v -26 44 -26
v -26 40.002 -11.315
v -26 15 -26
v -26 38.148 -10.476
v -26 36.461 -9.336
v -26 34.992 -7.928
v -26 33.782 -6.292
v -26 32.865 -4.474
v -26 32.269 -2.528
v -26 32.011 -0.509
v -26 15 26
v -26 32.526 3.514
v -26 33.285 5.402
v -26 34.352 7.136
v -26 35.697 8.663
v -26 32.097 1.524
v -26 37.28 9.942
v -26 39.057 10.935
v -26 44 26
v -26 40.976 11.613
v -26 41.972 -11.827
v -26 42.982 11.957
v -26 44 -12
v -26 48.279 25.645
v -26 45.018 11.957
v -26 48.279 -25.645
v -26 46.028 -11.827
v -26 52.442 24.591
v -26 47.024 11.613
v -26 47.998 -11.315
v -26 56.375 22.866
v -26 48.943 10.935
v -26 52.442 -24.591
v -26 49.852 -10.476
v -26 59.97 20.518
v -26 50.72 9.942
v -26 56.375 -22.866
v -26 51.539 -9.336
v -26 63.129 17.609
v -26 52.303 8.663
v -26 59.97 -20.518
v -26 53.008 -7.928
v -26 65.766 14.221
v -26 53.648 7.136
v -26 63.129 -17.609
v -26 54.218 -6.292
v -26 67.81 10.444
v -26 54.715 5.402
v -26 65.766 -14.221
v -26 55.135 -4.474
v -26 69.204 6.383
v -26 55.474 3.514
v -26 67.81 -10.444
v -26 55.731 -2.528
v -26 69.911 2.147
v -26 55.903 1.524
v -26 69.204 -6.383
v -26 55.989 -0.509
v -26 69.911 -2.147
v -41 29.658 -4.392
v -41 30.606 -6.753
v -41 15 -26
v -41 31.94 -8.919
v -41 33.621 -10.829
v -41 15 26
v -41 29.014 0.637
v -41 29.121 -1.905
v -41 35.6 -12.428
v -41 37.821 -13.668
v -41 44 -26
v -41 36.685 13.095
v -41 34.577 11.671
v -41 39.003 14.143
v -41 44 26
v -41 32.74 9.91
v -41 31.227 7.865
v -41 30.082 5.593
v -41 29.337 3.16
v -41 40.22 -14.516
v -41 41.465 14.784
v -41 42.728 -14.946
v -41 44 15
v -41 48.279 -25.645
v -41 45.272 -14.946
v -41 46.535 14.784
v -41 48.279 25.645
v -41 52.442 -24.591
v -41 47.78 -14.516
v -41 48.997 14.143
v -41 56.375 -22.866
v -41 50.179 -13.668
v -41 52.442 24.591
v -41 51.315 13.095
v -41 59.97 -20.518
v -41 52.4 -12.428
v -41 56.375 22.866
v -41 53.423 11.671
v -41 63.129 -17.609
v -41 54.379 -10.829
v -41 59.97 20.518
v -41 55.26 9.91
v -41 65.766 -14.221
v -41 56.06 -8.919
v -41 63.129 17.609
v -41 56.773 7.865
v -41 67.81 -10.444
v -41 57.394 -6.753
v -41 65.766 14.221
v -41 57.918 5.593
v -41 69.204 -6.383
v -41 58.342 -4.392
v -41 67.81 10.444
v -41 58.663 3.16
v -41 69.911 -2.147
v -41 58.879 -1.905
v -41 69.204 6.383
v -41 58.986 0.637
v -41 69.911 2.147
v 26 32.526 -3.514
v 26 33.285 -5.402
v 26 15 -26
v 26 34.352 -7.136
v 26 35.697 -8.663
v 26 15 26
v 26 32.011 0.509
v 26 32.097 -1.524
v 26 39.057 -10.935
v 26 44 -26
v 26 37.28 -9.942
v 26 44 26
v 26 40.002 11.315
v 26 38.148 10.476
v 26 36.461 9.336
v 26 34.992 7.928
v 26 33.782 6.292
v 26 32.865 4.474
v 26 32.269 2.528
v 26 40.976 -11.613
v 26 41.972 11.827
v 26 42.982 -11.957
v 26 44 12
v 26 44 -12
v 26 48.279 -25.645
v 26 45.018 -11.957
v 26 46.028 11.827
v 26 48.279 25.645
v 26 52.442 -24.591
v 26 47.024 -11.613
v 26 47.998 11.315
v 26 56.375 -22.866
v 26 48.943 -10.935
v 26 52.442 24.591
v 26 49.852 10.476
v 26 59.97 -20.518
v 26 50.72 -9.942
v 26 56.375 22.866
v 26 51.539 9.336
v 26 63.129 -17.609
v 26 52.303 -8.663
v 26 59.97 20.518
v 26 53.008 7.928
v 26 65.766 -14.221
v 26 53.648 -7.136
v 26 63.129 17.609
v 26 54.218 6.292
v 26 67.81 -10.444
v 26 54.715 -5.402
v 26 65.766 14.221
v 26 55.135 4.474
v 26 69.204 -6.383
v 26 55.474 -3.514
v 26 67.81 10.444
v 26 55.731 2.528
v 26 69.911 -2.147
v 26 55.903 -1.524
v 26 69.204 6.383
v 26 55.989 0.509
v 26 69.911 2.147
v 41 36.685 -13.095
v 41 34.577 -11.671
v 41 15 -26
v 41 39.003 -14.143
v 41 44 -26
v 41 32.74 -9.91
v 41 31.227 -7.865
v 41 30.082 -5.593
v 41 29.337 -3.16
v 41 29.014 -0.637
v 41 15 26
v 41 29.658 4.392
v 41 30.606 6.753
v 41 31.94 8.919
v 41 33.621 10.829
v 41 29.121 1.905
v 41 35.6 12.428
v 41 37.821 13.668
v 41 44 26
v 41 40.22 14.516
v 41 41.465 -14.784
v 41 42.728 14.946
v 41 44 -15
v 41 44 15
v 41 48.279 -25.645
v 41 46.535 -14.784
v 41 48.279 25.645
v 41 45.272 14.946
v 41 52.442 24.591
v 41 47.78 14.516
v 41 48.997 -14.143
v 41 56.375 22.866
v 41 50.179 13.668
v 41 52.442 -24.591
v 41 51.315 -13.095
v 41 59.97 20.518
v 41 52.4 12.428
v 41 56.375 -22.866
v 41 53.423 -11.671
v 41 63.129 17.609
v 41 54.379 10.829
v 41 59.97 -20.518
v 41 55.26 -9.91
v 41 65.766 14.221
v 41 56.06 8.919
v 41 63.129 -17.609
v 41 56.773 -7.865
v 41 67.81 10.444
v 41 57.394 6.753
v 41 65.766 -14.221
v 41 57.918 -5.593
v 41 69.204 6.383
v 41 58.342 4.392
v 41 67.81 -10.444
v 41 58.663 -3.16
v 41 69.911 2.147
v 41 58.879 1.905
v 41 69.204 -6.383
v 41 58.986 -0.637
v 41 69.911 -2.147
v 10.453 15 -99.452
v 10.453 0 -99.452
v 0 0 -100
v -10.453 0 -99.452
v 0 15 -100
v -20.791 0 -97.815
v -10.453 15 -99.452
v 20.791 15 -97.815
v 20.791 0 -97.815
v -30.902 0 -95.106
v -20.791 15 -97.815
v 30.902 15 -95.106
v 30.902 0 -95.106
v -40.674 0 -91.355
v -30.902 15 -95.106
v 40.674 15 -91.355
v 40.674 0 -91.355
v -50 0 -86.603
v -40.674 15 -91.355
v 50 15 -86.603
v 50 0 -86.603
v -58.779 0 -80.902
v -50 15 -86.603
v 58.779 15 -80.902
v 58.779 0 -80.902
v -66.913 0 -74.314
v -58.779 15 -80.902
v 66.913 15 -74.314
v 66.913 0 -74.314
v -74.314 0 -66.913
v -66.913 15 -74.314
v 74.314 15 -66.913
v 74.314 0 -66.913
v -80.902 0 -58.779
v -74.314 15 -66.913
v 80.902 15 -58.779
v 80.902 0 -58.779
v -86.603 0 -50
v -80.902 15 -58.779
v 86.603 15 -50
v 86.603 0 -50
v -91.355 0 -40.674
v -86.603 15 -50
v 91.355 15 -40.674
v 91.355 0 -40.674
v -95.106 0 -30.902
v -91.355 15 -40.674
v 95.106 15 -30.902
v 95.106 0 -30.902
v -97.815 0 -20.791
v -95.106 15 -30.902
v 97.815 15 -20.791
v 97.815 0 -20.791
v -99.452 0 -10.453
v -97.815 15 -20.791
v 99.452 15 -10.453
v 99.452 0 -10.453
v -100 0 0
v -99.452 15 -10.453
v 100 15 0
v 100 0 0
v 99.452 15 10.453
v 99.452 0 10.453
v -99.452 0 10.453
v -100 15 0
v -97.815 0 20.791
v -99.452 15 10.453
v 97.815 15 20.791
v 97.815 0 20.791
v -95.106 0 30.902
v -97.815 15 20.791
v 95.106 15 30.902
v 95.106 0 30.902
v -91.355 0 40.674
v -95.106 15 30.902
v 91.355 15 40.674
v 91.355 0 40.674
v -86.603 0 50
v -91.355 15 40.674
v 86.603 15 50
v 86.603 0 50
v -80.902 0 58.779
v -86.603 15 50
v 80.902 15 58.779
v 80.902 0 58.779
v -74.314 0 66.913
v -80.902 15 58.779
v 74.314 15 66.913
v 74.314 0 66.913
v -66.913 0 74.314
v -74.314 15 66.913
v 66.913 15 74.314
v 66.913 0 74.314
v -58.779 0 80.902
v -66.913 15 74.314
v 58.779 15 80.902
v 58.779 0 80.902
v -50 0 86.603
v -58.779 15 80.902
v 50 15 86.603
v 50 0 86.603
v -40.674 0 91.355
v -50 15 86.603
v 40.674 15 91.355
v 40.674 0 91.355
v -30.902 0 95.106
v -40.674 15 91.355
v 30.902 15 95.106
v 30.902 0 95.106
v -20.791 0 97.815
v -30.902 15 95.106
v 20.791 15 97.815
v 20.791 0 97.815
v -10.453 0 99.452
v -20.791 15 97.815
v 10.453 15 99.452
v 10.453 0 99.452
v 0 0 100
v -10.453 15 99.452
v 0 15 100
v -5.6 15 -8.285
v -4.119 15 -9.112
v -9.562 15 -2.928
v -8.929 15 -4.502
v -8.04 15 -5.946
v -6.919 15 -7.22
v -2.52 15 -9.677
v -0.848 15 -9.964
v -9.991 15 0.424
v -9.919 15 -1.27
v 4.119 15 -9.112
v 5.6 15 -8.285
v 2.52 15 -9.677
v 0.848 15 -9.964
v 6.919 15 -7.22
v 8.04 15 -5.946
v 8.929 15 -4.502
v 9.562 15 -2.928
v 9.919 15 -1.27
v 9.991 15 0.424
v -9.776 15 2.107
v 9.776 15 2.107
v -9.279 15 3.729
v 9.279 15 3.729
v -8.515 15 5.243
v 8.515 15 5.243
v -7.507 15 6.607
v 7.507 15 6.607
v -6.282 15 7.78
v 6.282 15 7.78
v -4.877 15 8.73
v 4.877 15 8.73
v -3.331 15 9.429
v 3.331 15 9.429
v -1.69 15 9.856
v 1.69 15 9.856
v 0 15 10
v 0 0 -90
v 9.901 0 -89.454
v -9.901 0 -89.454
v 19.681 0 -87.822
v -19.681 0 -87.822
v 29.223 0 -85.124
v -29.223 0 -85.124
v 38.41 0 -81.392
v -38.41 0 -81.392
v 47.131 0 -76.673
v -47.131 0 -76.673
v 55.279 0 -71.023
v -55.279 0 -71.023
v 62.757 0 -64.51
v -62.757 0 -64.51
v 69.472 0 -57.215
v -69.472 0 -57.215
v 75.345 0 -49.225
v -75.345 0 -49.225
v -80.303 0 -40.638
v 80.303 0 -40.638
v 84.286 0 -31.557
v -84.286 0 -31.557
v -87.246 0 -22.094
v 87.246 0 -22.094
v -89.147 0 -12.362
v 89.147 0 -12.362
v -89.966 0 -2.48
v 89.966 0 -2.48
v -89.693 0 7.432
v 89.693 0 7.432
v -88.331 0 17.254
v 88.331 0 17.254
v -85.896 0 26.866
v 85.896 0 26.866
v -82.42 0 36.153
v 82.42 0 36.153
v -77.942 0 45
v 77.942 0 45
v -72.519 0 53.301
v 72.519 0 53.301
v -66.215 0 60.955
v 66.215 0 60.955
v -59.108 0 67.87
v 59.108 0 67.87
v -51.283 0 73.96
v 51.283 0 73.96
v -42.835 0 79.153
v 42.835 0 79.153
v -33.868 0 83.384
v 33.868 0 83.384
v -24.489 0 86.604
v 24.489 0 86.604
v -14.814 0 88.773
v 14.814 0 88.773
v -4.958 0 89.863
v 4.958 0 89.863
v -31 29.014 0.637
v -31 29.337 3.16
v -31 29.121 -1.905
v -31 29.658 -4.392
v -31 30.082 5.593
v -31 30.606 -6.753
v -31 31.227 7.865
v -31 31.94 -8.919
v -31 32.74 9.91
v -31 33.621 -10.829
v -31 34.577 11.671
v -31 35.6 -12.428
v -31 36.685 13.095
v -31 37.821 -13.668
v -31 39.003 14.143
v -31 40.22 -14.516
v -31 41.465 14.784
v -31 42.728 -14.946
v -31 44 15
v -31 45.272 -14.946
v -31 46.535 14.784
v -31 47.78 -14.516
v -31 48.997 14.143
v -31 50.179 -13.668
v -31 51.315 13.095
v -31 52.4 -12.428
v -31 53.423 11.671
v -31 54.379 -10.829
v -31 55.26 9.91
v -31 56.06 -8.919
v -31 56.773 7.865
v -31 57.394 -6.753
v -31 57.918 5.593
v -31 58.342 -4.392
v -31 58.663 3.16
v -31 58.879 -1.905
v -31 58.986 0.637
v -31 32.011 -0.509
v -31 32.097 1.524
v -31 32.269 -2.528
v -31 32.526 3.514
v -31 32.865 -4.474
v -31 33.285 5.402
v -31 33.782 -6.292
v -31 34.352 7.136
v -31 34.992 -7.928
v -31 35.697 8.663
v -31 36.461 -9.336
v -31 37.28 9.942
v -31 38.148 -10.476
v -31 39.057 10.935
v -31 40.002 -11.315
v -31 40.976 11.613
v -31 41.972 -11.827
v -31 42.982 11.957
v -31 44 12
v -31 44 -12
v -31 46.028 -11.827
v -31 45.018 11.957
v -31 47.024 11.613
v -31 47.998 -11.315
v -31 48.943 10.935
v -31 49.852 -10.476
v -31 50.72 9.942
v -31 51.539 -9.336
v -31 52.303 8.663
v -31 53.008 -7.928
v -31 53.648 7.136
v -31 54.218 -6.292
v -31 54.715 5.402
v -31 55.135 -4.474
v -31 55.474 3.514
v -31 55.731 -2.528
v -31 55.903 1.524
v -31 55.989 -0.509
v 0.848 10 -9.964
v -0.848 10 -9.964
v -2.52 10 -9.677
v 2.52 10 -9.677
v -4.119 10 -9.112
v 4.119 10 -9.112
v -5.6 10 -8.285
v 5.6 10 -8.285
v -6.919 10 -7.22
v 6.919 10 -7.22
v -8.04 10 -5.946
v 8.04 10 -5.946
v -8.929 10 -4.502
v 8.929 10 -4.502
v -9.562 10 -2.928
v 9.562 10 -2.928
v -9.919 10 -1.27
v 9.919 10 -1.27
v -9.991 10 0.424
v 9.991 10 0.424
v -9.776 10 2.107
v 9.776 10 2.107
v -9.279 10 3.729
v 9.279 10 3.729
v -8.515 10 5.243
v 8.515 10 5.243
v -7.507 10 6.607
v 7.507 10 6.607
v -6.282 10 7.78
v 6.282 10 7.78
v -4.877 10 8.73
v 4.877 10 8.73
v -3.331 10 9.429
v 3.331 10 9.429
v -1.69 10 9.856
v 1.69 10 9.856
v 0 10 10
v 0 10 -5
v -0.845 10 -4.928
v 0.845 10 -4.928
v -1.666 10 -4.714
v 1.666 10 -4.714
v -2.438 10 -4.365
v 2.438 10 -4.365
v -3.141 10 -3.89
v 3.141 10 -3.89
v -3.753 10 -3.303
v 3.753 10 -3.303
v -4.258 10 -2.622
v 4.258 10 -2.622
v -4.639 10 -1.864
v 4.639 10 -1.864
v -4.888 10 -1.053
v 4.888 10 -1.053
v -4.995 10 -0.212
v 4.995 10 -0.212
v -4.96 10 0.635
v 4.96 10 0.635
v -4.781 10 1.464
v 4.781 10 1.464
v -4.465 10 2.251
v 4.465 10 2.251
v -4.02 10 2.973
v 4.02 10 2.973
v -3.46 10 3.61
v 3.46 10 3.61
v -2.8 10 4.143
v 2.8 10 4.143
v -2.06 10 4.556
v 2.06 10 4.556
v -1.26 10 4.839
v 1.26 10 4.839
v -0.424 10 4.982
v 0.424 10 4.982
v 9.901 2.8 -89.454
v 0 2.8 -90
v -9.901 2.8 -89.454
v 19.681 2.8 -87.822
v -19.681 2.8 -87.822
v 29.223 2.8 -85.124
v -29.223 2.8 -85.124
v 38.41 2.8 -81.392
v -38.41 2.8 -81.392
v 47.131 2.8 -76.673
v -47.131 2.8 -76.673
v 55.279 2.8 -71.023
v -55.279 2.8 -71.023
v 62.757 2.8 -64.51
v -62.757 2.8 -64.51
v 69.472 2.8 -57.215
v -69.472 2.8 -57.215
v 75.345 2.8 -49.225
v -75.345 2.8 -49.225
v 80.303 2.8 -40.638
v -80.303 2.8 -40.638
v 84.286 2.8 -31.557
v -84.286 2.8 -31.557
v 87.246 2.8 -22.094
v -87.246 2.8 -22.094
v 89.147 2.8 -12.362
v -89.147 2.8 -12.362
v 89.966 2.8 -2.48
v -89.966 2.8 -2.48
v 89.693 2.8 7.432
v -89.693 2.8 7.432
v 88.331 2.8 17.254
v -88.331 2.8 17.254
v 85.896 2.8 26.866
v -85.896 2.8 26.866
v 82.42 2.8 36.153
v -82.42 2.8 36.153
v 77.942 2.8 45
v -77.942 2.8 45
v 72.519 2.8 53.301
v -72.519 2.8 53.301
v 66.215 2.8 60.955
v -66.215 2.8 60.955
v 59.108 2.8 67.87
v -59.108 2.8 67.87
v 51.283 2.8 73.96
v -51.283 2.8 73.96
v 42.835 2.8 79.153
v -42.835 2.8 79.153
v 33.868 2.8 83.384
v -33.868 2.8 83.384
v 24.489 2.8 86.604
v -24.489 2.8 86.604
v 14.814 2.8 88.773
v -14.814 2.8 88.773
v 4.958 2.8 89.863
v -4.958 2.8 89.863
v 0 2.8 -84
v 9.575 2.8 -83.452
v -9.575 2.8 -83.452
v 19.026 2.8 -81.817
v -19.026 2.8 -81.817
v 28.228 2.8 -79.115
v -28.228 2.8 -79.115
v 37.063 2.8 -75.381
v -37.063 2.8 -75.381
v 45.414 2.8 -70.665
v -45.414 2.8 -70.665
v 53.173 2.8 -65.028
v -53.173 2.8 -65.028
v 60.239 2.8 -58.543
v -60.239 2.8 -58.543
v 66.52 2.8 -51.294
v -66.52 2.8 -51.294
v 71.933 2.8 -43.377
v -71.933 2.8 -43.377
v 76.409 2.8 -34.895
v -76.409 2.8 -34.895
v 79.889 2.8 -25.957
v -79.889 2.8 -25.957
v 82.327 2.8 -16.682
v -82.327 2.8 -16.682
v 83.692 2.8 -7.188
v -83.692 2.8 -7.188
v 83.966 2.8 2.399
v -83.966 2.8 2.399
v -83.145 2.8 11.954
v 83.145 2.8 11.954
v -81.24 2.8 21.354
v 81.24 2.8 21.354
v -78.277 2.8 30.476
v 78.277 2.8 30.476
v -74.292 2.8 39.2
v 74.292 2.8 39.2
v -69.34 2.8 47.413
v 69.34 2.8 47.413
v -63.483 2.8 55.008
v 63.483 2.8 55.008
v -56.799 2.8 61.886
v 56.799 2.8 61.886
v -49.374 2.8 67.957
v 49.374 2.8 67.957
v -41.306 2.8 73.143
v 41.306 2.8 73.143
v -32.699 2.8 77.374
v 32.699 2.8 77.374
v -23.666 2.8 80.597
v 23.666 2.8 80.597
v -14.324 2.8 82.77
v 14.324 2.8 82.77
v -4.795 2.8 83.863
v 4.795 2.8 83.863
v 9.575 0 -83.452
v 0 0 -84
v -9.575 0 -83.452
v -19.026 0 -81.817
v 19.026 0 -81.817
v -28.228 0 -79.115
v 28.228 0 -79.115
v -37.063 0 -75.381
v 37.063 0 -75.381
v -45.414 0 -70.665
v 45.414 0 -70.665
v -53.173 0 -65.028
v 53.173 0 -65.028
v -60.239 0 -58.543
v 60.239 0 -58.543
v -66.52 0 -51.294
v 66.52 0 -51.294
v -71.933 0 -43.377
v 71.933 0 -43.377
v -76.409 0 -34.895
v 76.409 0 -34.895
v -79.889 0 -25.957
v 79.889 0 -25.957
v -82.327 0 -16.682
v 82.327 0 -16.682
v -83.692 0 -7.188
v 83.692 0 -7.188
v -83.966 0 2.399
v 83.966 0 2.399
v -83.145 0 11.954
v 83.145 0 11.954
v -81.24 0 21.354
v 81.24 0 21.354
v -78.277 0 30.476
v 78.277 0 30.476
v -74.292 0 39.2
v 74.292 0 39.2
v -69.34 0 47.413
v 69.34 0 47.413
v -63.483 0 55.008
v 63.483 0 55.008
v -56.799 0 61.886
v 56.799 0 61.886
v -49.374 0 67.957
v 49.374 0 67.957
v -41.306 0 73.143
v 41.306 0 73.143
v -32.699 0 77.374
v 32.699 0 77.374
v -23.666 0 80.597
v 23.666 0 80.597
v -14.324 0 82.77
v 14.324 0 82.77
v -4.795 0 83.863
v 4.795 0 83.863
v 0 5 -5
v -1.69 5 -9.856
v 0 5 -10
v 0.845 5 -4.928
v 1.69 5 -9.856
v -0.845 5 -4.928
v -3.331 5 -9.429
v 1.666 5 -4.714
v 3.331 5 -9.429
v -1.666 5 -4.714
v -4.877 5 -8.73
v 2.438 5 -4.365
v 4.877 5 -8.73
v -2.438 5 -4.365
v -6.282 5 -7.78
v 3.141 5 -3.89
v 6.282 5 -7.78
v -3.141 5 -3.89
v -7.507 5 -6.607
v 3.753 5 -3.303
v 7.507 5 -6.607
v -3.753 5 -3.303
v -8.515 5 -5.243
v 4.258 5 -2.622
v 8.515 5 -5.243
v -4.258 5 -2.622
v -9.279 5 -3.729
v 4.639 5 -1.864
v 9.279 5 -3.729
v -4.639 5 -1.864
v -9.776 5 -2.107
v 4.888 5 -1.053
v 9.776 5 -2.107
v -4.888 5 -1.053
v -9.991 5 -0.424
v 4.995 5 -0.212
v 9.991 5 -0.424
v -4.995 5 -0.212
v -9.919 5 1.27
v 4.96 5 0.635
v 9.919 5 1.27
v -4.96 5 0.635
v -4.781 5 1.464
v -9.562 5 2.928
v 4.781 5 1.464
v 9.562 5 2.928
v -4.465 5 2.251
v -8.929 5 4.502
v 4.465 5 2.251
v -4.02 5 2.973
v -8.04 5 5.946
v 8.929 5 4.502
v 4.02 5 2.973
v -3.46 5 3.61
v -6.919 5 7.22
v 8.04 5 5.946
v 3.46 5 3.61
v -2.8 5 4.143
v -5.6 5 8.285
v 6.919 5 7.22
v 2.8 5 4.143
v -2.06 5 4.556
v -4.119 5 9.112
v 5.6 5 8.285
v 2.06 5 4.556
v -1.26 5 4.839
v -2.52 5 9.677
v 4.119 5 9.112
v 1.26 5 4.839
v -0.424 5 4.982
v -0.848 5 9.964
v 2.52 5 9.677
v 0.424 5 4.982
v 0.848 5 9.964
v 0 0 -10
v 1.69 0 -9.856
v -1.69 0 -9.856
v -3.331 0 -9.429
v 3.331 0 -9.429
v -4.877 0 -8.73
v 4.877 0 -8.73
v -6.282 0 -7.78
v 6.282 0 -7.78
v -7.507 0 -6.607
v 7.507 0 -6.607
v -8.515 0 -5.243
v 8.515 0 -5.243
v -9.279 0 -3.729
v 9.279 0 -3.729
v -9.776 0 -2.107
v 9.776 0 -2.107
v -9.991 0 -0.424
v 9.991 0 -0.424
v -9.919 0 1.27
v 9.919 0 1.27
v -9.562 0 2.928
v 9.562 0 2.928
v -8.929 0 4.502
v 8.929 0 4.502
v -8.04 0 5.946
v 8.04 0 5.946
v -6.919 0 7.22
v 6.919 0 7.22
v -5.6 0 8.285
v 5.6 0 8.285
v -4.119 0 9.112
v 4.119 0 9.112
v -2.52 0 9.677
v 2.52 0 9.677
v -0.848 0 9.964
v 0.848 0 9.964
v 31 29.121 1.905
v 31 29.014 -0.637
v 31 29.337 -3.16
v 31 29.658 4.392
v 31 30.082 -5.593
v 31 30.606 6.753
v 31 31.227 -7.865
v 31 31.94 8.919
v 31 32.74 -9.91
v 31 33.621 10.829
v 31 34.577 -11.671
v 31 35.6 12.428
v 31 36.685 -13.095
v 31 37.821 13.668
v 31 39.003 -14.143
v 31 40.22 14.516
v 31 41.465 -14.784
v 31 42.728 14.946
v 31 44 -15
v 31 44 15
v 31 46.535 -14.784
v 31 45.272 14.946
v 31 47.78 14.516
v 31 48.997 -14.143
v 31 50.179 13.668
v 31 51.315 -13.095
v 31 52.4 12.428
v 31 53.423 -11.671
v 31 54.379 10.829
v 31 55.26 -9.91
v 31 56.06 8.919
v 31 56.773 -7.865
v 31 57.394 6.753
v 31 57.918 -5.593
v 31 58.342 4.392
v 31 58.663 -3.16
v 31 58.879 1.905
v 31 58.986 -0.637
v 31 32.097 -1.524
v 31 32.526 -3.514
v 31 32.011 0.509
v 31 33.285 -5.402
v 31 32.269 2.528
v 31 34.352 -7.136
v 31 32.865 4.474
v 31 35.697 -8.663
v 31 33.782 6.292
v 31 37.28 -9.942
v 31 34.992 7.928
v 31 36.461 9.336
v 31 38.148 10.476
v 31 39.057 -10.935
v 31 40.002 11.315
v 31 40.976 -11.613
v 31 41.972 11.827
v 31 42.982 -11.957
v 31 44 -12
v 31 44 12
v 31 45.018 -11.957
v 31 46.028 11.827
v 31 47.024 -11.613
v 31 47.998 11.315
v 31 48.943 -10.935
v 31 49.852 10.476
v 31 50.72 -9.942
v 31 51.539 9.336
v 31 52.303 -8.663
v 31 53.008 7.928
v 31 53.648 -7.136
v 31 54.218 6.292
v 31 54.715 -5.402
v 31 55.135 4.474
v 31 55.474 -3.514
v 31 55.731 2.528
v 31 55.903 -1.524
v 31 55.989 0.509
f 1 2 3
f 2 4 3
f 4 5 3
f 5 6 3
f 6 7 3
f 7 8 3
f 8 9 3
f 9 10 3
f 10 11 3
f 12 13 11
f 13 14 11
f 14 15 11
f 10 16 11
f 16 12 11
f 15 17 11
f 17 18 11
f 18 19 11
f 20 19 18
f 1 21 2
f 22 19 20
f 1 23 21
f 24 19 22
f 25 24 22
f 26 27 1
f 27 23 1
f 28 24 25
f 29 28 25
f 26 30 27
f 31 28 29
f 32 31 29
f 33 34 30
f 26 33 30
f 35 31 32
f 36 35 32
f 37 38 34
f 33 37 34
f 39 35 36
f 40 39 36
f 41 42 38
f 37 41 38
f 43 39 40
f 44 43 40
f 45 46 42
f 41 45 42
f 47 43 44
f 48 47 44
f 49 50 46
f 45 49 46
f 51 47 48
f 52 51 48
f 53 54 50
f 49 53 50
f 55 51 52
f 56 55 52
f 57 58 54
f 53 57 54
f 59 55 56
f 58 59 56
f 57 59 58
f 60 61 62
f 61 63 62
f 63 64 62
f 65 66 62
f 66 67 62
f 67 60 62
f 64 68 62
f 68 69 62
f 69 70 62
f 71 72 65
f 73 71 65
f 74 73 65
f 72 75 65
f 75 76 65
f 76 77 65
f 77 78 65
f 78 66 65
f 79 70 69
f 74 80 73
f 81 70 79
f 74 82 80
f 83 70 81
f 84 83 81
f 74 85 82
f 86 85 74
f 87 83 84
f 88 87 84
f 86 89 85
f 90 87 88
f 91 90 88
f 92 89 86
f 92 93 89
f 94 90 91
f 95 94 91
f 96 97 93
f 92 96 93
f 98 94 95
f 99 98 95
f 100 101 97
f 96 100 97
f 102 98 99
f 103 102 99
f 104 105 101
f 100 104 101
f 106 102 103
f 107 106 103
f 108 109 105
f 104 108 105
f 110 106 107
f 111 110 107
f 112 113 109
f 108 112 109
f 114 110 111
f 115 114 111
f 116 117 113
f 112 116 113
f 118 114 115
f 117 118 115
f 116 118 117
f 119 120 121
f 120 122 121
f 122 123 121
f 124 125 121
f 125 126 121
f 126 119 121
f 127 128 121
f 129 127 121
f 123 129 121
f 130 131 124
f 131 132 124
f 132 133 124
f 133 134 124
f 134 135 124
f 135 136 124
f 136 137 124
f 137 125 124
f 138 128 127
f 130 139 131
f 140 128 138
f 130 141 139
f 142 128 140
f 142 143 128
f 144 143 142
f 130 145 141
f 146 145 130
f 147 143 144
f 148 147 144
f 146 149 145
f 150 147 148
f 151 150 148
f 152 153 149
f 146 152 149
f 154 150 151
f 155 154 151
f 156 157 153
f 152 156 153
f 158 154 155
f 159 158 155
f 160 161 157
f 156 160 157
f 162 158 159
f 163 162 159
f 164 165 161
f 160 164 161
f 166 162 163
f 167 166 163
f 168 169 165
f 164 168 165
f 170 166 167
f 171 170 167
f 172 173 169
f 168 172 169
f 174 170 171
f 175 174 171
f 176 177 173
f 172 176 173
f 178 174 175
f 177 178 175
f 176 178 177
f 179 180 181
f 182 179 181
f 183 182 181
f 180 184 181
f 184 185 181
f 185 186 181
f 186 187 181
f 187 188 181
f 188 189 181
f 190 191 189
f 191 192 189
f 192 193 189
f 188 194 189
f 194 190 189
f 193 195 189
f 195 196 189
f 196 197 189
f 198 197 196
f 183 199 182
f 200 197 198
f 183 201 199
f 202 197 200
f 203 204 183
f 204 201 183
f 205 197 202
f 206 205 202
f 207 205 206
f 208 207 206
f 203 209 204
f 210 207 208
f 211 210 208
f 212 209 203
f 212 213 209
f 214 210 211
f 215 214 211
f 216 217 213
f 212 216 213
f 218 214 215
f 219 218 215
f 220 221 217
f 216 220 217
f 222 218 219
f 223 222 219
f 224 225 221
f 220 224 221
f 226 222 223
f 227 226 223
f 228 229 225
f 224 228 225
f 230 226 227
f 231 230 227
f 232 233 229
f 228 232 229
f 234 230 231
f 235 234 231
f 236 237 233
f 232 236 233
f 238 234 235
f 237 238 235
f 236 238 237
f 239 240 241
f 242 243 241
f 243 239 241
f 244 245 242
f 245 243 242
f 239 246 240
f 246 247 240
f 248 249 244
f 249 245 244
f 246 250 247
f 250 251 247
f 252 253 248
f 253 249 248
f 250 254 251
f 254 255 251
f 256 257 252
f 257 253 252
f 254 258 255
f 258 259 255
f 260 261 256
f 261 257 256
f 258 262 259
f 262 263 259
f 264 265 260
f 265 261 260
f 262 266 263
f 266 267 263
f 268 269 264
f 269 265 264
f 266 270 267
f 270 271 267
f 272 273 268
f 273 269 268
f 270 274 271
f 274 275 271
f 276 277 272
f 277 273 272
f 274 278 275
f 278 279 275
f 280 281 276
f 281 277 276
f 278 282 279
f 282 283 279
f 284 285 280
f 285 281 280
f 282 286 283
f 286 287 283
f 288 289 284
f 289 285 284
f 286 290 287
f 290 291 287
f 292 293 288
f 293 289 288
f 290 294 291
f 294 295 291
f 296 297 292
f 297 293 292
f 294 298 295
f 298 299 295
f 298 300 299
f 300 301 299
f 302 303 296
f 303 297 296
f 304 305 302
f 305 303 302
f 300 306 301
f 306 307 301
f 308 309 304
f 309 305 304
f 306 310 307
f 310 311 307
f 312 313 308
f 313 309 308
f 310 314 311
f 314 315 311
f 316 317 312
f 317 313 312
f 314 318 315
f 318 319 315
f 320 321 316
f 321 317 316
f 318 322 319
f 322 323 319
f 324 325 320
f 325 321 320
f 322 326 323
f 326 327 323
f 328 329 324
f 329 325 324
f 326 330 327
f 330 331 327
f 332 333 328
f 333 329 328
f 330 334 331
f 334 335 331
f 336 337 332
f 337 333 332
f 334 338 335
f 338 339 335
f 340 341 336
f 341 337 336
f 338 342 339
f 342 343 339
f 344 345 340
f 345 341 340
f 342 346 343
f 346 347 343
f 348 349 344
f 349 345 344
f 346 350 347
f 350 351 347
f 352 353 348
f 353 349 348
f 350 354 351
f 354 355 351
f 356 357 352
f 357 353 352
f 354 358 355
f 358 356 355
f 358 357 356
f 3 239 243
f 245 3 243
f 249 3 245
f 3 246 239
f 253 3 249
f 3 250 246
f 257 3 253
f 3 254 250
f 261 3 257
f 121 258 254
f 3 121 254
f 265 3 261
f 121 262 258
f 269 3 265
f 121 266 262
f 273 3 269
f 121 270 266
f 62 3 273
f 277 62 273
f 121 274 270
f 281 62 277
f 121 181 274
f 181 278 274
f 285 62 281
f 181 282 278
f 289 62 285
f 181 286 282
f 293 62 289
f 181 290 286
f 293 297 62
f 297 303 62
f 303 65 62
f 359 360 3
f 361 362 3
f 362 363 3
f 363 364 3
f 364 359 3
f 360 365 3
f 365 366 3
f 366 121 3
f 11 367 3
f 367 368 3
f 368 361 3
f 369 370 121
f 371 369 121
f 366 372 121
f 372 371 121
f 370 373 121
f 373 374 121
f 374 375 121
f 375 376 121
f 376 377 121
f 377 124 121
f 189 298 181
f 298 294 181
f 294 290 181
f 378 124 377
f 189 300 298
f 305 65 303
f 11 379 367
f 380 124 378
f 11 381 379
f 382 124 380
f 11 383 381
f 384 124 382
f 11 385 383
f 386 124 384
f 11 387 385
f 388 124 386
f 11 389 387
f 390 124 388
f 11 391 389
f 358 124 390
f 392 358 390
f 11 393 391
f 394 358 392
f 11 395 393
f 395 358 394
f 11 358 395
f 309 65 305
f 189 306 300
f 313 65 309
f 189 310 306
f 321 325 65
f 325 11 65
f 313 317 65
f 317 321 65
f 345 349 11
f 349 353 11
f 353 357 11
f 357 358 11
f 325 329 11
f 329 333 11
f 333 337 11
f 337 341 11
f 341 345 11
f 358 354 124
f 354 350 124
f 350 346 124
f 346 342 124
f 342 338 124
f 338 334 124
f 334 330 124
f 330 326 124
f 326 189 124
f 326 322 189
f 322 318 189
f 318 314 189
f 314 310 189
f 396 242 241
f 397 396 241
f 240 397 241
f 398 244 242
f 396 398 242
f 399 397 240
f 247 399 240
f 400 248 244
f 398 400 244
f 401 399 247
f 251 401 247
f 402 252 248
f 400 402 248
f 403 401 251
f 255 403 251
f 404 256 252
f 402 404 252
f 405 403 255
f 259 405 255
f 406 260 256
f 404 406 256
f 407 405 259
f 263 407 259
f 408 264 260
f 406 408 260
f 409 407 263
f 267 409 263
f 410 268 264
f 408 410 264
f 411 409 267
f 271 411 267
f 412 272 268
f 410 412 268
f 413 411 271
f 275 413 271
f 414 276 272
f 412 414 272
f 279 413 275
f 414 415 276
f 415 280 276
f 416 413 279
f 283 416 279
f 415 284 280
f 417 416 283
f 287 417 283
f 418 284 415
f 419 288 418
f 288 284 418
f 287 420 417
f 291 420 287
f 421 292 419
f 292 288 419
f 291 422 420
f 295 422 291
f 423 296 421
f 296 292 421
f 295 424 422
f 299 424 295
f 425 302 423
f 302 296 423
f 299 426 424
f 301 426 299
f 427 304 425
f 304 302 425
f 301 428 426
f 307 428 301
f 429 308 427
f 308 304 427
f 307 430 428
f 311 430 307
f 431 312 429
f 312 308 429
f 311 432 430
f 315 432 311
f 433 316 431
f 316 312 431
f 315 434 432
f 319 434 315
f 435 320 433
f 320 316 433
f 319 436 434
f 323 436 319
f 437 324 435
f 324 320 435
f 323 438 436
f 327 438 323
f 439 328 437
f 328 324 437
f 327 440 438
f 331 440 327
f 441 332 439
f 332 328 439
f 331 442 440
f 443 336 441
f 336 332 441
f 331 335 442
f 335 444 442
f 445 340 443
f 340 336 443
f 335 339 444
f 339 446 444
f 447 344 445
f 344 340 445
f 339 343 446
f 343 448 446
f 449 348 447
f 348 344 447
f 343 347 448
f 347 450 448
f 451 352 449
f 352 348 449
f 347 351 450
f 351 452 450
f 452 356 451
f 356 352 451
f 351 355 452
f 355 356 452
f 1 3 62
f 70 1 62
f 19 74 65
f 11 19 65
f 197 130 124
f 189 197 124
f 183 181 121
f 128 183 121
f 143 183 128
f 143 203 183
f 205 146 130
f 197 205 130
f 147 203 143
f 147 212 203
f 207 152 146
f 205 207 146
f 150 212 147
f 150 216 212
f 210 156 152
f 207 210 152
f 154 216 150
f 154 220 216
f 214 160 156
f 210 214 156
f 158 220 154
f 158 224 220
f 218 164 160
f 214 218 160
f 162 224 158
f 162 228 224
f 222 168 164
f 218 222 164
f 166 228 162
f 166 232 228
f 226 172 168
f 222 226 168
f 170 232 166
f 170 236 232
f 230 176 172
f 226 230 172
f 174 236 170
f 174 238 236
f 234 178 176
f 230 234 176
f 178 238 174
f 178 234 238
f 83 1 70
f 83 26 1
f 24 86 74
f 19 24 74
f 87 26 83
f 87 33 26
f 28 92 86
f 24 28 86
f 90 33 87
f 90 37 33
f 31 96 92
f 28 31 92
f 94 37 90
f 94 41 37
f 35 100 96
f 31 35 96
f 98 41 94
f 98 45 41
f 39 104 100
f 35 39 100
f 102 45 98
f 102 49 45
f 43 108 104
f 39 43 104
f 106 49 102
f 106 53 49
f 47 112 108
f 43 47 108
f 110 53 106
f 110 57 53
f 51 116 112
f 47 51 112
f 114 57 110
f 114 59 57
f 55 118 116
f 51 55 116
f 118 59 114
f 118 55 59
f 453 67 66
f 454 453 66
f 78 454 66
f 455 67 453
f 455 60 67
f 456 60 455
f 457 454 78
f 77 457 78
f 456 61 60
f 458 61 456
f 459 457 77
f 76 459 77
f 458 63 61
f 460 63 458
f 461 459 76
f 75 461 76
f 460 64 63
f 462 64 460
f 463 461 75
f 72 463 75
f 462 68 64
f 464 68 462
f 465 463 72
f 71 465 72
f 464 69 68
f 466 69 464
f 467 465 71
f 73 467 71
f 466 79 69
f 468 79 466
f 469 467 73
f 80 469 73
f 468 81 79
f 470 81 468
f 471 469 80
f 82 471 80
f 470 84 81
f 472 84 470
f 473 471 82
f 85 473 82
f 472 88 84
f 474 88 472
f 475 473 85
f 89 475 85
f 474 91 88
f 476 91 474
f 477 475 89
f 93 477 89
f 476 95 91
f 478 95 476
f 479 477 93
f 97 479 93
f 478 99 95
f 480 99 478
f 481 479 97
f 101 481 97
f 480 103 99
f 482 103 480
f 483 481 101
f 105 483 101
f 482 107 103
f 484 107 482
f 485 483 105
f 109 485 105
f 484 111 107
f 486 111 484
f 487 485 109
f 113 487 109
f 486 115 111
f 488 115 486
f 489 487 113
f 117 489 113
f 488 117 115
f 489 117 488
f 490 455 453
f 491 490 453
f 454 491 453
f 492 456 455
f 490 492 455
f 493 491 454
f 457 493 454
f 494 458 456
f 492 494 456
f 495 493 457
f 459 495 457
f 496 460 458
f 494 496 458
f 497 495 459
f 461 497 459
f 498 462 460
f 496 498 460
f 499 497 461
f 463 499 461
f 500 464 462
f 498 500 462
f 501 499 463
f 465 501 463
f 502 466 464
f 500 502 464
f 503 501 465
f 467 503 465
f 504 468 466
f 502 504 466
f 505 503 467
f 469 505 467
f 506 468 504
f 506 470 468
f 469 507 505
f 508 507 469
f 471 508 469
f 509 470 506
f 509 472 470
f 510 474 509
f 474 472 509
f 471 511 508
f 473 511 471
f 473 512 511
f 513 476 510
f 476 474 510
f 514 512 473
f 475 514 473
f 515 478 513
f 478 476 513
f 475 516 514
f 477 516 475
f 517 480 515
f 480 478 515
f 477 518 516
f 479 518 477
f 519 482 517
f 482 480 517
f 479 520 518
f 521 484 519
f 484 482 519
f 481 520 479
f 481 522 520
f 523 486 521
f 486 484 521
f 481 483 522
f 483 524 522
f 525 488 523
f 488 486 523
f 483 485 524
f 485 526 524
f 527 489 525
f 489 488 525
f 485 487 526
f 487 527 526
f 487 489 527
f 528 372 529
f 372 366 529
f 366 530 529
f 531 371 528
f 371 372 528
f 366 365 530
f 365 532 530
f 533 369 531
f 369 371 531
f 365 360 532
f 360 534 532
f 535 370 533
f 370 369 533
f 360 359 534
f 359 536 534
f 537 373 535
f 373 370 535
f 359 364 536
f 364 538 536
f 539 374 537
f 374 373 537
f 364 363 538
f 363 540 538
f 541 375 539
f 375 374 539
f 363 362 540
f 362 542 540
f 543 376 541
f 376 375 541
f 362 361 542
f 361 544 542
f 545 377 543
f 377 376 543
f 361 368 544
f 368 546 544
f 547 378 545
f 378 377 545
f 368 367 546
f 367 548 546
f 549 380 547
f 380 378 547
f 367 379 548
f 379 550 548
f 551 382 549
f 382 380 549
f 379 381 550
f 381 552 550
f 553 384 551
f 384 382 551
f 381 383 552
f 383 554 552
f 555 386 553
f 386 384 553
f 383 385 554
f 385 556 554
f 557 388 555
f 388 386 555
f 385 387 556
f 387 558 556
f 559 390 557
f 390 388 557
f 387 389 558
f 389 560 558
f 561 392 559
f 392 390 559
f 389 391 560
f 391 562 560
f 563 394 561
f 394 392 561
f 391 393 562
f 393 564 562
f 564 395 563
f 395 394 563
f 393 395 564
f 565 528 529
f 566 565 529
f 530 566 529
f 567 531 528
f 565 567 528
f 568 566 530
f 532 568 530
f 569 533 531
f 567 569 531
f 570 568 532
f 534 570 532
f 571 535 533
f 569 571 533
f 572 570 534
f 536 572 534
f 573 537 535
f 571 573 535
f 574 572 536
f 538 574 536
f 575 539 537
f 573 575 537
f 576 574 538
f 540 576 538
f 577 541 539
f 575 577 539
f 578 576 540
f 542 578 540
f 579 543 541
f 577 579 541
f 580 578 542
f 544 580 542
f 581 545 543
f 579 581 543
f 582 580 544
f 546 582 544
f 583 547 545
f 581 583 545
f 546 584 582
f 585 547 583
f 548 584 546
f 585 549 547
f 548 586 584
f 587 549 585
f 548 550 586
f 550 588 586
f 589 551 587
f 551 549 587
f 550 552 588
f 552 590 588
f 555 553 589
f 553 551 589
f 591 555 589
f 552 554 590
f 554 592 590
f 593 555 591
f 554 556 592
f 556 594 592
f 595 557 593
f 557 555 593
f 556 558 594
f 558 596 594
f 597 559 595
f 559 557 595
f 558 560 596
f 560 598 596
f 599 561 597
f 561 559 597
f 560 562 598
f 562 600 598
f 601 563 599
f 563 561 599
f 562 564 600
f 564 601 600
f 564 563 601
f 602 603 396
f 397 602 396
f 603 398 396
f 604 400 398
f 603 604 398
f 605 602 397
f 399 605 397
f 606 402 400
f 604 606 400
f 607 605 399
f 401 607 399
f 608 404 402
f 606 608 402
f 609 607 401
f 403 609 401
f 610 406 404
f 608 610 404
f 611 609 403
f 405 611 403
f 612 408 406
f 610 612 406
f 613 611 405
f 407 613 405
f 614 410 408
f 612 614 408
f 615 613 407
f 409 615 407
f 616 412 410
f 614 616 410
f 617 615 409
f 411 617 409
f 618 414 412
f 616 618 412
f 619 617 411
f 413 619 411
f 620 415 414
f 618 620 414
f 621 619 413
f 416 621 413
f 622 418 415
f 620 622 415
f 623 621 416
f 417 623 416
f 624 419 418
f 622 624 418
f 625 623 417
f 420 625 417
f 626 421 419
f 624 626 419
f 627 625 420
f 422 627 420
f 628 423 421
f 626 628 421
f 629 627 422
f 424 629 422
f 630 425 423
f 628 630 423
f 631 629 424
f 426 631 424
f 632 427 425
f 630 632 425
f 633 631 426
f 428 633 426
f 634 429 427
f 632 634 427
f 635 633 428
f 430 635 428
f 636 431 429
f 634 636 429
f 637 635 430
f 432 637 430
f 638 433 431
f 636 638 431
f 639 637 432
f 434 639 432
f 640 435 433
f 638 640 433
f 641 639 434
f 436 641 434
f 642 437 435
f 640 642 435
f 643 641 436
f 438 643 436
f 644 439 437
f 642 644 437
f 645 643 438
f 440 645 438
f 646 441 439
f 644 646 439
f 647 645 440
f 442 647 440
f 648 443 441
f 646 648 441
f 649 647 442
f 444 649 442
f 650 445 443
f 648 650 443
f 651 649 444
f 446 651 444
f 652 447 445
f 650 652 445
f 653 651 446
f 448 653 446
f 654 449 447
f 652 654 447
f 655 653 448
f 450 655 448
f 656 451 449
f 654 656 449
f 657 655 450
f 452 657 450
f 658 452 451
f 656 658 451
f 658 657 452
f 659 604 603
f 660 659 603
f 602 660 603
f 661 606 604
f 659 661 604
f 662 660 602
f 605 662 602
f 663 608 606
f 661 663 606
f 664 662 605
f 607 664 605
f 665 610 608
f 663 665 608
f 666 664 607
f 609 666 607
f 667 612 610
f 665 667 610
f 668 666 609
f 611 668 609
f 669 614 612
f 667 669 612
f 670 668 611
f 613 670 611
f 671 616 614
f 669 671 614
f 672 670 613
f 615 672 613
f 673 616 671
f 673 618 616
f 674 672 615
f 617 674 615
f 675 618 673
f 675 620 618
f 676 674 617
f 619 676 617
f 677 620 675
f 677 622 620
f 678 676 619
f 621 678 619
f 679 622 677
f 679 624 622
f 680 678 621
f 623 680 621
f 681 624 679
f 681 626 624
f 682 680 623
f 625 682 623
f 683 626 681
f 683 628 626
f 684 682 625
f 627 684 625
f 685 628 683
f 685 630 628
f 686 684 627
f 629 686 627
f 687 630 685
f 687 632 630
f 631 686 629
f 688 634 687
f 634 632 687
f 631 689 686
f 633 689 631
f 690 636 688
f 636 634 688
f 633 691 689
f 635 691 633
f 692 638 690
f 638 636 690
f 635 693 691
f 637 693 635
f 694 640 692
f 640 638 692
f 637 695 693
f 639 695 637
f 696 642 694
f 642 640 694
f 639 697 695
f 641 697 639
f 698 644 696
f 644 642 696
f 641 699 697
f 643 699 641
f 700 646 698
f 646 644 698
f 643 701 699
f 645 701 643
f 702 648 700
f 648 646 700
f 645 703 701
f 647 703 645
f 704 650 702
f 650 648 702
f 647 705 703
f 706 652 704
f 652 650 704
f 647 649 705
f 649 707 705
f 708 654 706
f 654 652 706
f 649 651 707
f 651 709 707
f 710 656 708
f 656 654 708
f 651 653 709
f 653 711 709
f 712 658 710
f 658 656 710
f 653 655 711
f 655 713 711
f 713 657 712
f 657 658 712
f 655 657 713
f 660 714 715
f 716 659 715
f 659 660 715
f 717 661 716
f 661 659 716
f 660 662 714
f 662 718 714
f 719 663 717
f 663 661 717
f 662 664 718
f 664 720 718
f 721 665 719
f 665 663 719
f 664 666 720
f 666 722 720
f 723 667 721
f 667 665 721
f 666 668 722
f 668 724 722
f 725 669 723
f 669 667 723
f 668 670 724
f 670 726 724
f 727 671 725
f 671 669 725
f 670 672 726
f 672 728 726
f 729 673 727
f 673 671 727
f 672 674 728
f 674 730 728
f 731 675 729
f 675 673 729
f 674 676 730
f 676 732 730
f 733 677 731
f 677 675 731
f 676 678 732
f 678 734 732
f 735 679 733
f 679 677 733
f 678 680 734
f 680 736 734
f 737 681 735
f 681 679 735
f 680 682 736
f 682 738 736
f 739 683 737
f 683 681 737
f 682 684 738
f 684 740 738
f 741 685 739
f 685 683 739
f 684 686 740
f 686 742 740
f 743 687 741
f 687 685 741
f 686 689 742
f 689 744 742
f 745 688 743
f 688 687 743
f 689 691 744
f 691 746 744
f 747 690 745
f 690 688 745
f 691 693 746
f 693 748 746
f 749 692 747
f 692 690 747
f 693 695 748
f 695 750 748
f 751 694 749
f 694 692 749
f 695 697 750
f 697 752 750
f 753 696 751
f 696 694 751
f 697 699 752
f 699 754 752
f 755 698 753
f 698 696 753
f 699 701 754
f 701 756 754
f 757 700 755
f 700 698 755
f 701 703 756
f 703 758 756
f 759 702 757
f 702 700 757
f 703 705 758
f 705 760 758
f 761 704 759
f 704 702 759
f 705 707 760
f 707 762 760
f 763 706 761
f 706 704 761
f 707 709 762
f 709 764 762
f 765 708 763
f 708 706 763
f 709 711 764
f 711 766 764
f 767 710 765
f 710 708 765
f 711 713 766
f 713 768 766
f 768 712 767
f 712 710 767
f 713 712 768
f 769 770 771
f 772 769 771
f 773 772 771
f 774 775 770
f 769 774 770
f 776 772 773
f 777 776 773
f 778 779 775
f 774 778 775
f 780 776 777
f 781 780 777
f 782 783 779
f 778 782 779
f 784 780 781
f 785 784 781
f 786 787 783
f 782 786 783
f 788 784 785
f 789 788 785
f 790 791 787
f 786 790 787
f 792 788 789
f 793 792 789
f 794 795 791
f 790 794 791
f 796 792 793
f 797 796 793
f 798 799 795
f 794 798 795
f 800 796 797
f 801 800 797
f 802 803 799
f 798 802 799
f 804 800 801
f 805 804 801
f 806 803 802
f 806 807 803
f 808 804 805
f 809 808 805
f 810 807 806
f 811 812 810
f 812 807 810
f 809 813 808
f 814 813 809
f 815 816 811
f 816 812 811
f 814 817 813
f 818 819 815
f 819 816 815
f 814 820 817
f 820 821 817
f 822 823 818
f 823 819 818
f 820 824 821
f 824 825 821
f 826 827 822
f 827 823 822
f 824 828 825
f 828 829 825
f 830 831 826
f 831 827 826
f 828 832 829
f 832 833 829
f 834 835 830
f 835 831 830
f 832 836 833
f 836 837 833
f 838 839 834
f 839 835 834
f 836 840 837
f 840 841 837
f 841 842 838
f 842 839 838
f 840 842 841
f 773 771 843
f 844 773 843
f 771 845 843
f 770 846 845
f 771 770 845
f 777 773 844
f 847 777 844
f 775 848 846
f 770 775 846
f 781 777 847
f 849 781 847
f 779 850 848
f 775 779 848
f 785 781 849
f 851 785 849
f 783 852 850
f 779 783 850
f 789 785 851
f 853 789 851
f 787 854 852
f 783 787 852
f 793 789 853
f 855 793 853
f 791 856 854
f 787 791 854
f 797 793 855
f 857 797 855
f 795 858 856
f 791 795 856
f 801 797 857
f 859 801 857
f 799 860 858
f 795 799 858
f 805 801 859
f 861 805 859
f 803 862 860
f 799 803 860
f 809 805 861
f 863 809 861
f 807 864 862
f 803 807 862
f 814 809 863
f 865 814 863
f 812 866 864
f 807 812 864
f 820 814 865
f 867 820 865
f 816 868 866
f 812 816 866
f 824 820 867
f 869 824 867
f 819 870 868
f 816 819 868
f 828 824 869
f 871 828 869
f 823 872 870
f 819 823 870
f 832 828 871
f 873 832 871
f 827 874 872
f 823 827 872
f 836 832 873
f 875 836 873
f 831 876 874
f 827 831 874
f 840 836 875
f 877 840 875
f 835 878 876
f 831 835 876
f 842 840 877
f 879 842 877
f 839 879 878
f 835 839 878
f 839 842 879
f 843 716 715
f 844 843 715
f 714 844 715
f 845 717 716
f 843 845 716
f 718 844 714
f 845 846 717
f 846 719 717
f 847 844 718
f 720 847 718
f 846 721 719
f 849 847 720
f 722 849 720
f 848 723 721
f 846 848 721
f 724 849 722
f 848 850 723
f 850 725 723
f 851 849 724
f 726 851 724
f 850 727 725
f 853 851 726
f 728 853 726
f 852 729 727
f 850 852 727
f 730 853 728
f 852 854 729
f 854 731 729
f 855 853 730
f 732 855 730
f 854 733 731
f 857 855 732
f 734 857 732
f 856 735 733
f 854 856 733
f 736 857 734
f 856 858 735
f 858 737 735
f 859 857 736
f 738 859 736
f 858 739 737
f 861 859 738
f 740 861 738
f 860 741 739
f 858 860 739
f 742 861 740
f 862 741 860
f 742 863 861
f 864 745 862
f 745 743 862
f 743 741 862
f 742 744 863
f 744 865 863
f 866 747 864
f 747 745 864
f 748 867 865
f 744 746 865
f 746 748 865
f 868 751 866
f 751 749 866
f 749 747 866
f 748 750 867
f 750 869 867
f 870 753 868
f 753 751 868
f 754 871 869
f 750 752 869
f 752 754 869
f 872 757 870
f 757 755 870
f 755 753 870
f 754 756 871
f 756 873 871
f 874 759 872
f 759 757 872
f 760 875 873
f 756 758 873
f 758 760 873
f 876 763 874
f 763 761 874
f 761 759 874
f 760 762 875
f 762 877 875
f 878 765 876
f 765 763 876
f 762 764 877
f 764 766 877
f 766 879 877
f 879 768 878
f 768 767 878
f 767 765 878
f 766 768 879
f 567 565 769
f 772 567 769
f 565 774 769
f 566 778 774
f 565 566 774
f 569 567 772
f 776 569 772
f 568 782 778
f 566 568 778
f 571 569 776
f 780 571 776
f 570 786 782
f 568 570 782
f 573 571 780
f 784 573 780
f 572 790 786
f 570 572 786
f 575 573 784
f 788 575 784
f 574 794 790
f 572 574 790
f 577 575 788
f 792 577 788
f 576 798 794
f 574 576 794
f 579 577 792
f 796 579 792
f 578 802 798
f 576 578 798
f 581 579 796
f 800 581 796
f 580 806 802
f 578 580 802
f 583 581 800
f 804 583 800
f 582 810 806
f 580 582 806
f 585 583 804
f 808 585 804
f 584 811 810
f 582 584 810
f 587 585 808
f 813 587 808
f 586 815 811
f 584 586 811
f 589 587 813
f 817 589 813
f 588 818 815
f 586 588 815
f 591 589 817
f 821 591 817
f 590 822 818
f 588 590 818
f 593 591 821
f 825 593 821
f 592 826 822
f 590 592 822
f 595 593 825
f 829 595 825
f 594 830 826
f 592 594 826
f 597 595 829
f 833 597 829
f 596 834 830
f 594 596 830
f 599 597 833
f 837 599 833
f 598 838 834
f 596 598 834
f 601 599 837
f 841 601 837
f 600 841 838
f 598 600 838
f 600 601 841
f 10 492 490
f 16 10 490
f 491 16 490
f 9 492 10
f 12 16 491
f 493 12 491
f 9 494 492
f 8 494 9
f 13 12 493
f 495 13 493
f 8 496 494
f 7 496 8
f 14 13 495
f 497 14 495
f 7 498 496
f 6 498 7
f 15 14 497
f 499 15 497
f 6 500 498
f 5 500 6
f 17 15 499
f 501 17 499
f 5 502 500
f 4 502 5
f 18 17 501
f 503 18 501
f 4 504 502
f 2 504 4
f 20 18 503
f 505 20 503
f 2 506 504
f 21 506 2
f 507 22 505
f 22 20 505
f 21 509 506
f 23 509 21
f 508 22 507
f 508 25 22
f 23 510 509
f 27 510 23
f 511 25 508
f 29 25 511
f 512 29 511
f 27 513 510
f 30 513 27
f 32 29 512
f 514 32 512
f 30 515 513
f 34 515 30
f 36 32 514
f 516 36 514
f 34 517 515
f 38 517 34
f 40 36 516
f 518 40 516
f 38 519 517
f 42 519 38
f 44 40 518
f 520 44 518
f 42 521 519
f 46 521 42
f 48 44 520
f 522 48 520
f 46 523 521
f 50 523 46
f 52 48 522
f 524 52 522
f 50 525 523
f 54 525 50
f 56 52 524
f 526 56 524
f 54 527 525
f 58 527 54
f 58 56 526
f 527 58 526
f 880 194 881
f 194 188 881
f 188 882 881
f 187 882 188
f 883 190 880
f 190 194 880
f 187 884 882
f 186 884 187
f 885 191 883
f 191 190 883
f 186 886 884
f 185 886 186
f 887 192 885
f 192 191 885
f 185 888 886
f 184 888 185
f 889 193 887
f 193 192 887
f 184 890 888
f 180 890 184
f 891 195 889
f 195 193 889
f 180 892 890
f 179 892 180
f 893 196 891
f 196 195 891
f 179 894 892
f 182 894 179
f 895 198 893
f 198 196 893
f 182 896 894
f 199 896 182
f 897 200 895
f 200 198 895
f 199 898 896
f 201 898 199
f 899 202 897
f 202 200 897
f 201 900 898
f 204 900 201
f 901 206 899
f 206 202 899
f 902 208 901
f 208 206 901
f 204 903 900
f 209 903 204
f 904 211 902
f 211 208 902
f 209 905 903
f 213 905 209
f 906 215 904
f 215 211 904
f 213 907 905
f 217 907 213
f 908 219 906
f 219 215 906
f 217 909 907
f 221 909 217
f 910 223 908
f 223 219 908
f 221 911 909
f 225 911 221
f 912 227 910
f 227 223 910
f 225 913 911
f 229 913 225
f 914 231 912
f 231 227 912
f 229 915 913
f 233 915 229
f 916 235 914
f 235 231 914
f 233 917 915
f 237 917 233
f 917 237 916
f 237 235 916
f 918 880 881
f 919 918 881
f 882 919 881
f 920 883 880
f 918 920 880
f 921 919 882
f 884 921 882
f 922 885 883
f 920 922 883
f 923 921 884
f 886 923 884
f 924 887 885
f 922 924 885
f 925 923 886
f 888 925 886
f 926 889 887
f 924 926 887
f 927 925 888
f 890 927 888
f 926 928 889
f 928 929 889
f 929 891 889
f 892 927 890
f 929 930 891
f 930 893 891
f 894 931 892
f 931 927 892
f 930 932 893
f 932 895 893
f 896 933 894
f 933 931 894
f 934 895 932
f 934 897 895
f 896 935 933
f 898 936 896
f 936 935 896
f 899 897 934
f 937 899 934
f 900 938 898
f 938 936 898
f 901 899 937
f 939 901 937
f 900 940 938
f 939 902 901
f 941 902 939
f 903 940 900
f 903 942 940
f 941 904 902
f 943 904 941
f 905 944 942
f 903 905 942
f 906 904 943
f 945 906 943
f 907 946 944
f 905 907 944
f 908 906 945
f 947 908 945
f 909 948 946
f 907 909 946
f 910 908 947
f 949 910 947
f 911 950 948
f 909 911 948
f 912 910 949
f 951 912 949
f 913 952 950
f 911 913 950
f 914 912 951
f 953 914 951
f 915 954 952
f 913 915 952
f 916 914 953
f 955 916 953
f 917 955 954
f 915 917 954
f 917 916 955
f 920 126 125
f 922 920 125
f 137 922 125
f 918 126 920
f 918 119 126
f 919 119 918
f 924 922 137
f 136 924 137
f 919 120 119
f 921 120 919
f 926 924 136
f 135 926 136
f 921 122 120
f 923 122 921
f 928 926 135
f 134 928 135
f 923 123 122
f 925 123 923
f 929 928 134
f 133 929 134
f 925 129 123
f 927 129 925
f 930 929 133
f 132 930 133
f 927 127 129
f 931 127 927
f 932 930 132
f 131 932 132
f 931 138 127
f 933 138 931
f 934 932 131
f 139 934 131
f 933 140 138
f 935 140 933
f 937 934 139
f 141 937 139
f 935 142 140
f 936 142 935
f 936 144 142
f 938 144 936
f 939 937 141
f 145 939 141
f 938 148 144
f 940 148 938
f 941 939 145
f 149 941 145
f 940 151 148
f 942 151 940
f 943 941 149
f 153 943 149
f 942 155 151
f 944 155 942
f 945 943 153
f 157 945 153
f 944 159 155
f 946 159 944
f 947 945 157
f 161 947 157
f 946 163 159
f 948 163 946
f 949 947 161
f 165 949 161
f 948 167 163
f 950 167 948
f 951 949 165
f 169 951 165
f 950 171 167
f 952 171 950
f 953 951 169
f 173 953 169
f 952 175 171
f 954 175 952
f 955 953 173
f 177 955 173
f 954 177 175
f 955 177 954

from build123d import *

# Parameters (mm, degrees)
SKIZZE1_R                        = 100
AUFSATZ_LINEAR_AUSTRAGEN1_DEPTH  = 15
AUFSATZ_LINEAR_AUSTRAGEN2_DEPTH  = 55
SCHNITT_LINEAR_AUSTRAGEN5_REACH  = 188.497
SKIZZE7_R                        = 15
SCHNITT_LINEAR_AUSTRAGEN6_DEPTH  = 10
SKIZZE10_R                       = 10
SCHNITT_LINEAR_AUSTRAGEN9_DEPTH  = 5
SCHNITT_LINEAR_START             = -5
SKIZZE11_R                       = 10
SCHNITT_LINEAR_AUSTRAGEN10_DEPTH = 5
SKIZZE12_R                       = 90
SKIZZE12_R_2                     = 84
SCHNITT_LINEAR_AUSTRAGEN11_DEPTH = 2.8
SKIZZE13_R                       = 5
SCHNITT_LINEAR_AUSTRAGEN12_DEPTH = 5
SKIZZE14_R                       = 12
SCHNITT_LINEAR_AUSTRAGEN13_DEPTH = 10


with BuildPart() as part:
    # Skizze1 → Aufsatz-Linear austragen1 (new body)
    with BuildSketch(Plane(origin=(0, 0, 0), x_dir=(1, 0, 0), z_dir=(0, 1, 0))):
        with Locations(Location((0, 0, 0), (0, 0, 270))):
            Circle(SKIZZE1_R)
    extrude(amount=AUFSATZ_LINEAR_AUSTRAGEN1_DEPTH)

    # Skizze2 → Aufsatz-Linear austragen2 (add)
    with BuildSketch(Plane(origin=(0, 15, 0), x_dir=(1, 0, 0), z_dir=(0, 1, 0))):
        Polygon((-26, -25), (-26, 25), (-26, 26), (-41, 26), (-41, -26), (-26, -26), align=None)
        Polygon((26, 26), (26, 25), (26, -25), (26, -26), (41, -26), (41, 26), align=None)
    extrude(amount=AUFSATZ_LINEAR_AUSTRAGEN2_DEPTH)

    # Schnitt-Linear austragen5: up to this face of the body (flat: up to its plane)
    schnitt_linear_austragen5_end = Plane(part.part.faces().sort_by_distance((41, 42.5, 0))[0])
    # Skizze3 → Schnitt-Linear austragen5 (cut, up to the picked face)
    with BuildSketch(Plane.ZY.offset(41), mode=Mode.PRIVATE) as schnitt_linear_austragen5_sk1:
        with BuildLine():
            Line((-26, 70), (-26, 44))
            ThreePointArc((-26, 44), (-18.384776279, 62.384776343), (9.1e-08, 70))
            Line((9.1e-08, 70), (-26, 70))
        make_face()
    schnitt_linear_austragen5_tool1 = split(extrude(schnitt_linear_austragen5_sk1.sketch, amount=-SCHNITT_LINEAR_AUSTRAGEN5_REACH, mode=Mode.PRIVATE), bisect_by=schnitt_linear_austragen5_end, keep=Keep.BOTH, mode=Mode.PRIVATE)
    # Skizze3 → Schnitt-Linear austragen5 (cut, up to the picked face)
    with BuildSketch(Plane.ZY.offset(41), mode=Mode.PRIVATE) as schnitt_linear_austragen5_sk2:
        with BuildLine():
            ThreePointArc((9.1e-08, 70), (18.384776343, 62.384776279), (26, 44))
            Line((26, 44), (26, 70))
            Line((26, 70), (9.1e-08, 70))
        make_face()
    schnitt_linear_austragen5_tool2 = split(extrude(schnitt_linear_austragen5_sk2.sketch, amount=-SCHNITT_LINEAR_AUSTRAGEN5_REACH, mode=Mode.PRIVATE), bisect_by=schnitt_linear_austragen5_end, keep=Keep.BOTH, mode=Mode.PRIVATE)
    add(schnitt_linear_austragen5_tool1.solids().sort_by(Axis((-41, 64.192434, -20.192434), (1, 0, 0)))[0], mode=Mode.SUBTRACT)
    add(schnitt_linear_austragen5_tool2.solids().sort_by(Axis((-41, 64.192434, 20.192434), (1, 0, 0)))[0], mode=Mode.SUBTRACT)

    # Skizze7 → Schnitt-Linear austragen6 (cut)
    with BuildSketch(Plane.ZY.offset(41)):
        with Locations((0, 44)):
            Circle(SKIZZE7_R)
    schnitt_linear_austragen6 = extrude(amount=-SCHNITT_LINEAR_AUSTRAGEN6_DEPTH, mode=Mode.SUBTRACT)

    # Skizze10 → Schnitt-Linear austragen9 (cut)
    with BuildSketch(Plane(origin=(0, 15, 0), x_dir=(1, 0, 0), z_dir=(0, 1, 0))):
        with Locations(Location((0, 0, 0), (0, 0, 270))):
            Circle(SKIZZE10_R)
    extrude(amount=-SCHNITT_LINEAR_AUSTRAGEN9_DEPTH, mode=Mode.SUBTRACT)

    # Skizze11 → Schnitt-Linear austragen10 (cut)
    with BuildSketch(Plane.XZ.offset(SCHNITT_LINEAR_START)):
        with Locations(Location((0, 0, 0), (0, 0, 90))):
            Circle(SKIZZE11_R)
    extrude(amount=SCHNITT_LINEAR_AUSTRAGEN10_DEPTH, mode=Mode.SUBTRACT)

    # Skizze12 → Schnitt-Linear austragen11 (cut)
    with BuildSketch(Plane.XZ):
        with Locations(Location((0, 0, 0), (0, 0, 270))):
            Circle(SKIZZE12_R)
        with Locations(Location((0, 0, 0), (0, 0, 270))):
            Circle(SKIZZE12_R_2, mode=Mode.SUBTRACT)
    extrude(amount=-SCHNITT_LINEAR_AUSTRAGEN11_DEPTH, mode=Mode.SUBTRACT)

    # Skizze13 → Schnitt-Linear austragen12 (cut)
    with BuildSketch(Plane.XZ.offset(-5)):
        with Locations(Location((0, 0, 0), (0, 0, 270))):
            Circle(SKIZZE13_R)
    extrude(amount=-SCHNITT_LINEAR_AUSTRAGEN12_DEPTH, mode=Mode.SUBTRACT)

    # Skizze14 → Schnitt-Linear austragen13 (cut)
    with BuildSketch(Plane(origin=(-26, 0, 0), x_dir=(0, 0, -1), z_dir=(1, 0, 0))):
        with Locations((0, 44)):
            Circle(SKIZZE14_R)
    schnitt_linear_austragen13 = extrude(amount=-SCHNITT_LINEAR_AUSTRAGEN13_DEPTH, mode=Mode.SUBTRACT)

    # Spiegeln1: Schnitt-Linear austragen6, Schnitt-Linear austragen13 across plane
    add(schnitt_linear_austragen6.mirror(Plane(origin=(0, 0, 0), x_dir=(0, 0, 1), z_dir=(1, 0, 0))), mode=Mode.SUBTRACT)
    add(schnitt_linear_austragen13.mirror(Plane(origin=(0, 0, 0), x_dir=(0, 0, 1), z_dir=(1, 0, 0))), mode=Mode.SUBTRACT)


solid = part.part
